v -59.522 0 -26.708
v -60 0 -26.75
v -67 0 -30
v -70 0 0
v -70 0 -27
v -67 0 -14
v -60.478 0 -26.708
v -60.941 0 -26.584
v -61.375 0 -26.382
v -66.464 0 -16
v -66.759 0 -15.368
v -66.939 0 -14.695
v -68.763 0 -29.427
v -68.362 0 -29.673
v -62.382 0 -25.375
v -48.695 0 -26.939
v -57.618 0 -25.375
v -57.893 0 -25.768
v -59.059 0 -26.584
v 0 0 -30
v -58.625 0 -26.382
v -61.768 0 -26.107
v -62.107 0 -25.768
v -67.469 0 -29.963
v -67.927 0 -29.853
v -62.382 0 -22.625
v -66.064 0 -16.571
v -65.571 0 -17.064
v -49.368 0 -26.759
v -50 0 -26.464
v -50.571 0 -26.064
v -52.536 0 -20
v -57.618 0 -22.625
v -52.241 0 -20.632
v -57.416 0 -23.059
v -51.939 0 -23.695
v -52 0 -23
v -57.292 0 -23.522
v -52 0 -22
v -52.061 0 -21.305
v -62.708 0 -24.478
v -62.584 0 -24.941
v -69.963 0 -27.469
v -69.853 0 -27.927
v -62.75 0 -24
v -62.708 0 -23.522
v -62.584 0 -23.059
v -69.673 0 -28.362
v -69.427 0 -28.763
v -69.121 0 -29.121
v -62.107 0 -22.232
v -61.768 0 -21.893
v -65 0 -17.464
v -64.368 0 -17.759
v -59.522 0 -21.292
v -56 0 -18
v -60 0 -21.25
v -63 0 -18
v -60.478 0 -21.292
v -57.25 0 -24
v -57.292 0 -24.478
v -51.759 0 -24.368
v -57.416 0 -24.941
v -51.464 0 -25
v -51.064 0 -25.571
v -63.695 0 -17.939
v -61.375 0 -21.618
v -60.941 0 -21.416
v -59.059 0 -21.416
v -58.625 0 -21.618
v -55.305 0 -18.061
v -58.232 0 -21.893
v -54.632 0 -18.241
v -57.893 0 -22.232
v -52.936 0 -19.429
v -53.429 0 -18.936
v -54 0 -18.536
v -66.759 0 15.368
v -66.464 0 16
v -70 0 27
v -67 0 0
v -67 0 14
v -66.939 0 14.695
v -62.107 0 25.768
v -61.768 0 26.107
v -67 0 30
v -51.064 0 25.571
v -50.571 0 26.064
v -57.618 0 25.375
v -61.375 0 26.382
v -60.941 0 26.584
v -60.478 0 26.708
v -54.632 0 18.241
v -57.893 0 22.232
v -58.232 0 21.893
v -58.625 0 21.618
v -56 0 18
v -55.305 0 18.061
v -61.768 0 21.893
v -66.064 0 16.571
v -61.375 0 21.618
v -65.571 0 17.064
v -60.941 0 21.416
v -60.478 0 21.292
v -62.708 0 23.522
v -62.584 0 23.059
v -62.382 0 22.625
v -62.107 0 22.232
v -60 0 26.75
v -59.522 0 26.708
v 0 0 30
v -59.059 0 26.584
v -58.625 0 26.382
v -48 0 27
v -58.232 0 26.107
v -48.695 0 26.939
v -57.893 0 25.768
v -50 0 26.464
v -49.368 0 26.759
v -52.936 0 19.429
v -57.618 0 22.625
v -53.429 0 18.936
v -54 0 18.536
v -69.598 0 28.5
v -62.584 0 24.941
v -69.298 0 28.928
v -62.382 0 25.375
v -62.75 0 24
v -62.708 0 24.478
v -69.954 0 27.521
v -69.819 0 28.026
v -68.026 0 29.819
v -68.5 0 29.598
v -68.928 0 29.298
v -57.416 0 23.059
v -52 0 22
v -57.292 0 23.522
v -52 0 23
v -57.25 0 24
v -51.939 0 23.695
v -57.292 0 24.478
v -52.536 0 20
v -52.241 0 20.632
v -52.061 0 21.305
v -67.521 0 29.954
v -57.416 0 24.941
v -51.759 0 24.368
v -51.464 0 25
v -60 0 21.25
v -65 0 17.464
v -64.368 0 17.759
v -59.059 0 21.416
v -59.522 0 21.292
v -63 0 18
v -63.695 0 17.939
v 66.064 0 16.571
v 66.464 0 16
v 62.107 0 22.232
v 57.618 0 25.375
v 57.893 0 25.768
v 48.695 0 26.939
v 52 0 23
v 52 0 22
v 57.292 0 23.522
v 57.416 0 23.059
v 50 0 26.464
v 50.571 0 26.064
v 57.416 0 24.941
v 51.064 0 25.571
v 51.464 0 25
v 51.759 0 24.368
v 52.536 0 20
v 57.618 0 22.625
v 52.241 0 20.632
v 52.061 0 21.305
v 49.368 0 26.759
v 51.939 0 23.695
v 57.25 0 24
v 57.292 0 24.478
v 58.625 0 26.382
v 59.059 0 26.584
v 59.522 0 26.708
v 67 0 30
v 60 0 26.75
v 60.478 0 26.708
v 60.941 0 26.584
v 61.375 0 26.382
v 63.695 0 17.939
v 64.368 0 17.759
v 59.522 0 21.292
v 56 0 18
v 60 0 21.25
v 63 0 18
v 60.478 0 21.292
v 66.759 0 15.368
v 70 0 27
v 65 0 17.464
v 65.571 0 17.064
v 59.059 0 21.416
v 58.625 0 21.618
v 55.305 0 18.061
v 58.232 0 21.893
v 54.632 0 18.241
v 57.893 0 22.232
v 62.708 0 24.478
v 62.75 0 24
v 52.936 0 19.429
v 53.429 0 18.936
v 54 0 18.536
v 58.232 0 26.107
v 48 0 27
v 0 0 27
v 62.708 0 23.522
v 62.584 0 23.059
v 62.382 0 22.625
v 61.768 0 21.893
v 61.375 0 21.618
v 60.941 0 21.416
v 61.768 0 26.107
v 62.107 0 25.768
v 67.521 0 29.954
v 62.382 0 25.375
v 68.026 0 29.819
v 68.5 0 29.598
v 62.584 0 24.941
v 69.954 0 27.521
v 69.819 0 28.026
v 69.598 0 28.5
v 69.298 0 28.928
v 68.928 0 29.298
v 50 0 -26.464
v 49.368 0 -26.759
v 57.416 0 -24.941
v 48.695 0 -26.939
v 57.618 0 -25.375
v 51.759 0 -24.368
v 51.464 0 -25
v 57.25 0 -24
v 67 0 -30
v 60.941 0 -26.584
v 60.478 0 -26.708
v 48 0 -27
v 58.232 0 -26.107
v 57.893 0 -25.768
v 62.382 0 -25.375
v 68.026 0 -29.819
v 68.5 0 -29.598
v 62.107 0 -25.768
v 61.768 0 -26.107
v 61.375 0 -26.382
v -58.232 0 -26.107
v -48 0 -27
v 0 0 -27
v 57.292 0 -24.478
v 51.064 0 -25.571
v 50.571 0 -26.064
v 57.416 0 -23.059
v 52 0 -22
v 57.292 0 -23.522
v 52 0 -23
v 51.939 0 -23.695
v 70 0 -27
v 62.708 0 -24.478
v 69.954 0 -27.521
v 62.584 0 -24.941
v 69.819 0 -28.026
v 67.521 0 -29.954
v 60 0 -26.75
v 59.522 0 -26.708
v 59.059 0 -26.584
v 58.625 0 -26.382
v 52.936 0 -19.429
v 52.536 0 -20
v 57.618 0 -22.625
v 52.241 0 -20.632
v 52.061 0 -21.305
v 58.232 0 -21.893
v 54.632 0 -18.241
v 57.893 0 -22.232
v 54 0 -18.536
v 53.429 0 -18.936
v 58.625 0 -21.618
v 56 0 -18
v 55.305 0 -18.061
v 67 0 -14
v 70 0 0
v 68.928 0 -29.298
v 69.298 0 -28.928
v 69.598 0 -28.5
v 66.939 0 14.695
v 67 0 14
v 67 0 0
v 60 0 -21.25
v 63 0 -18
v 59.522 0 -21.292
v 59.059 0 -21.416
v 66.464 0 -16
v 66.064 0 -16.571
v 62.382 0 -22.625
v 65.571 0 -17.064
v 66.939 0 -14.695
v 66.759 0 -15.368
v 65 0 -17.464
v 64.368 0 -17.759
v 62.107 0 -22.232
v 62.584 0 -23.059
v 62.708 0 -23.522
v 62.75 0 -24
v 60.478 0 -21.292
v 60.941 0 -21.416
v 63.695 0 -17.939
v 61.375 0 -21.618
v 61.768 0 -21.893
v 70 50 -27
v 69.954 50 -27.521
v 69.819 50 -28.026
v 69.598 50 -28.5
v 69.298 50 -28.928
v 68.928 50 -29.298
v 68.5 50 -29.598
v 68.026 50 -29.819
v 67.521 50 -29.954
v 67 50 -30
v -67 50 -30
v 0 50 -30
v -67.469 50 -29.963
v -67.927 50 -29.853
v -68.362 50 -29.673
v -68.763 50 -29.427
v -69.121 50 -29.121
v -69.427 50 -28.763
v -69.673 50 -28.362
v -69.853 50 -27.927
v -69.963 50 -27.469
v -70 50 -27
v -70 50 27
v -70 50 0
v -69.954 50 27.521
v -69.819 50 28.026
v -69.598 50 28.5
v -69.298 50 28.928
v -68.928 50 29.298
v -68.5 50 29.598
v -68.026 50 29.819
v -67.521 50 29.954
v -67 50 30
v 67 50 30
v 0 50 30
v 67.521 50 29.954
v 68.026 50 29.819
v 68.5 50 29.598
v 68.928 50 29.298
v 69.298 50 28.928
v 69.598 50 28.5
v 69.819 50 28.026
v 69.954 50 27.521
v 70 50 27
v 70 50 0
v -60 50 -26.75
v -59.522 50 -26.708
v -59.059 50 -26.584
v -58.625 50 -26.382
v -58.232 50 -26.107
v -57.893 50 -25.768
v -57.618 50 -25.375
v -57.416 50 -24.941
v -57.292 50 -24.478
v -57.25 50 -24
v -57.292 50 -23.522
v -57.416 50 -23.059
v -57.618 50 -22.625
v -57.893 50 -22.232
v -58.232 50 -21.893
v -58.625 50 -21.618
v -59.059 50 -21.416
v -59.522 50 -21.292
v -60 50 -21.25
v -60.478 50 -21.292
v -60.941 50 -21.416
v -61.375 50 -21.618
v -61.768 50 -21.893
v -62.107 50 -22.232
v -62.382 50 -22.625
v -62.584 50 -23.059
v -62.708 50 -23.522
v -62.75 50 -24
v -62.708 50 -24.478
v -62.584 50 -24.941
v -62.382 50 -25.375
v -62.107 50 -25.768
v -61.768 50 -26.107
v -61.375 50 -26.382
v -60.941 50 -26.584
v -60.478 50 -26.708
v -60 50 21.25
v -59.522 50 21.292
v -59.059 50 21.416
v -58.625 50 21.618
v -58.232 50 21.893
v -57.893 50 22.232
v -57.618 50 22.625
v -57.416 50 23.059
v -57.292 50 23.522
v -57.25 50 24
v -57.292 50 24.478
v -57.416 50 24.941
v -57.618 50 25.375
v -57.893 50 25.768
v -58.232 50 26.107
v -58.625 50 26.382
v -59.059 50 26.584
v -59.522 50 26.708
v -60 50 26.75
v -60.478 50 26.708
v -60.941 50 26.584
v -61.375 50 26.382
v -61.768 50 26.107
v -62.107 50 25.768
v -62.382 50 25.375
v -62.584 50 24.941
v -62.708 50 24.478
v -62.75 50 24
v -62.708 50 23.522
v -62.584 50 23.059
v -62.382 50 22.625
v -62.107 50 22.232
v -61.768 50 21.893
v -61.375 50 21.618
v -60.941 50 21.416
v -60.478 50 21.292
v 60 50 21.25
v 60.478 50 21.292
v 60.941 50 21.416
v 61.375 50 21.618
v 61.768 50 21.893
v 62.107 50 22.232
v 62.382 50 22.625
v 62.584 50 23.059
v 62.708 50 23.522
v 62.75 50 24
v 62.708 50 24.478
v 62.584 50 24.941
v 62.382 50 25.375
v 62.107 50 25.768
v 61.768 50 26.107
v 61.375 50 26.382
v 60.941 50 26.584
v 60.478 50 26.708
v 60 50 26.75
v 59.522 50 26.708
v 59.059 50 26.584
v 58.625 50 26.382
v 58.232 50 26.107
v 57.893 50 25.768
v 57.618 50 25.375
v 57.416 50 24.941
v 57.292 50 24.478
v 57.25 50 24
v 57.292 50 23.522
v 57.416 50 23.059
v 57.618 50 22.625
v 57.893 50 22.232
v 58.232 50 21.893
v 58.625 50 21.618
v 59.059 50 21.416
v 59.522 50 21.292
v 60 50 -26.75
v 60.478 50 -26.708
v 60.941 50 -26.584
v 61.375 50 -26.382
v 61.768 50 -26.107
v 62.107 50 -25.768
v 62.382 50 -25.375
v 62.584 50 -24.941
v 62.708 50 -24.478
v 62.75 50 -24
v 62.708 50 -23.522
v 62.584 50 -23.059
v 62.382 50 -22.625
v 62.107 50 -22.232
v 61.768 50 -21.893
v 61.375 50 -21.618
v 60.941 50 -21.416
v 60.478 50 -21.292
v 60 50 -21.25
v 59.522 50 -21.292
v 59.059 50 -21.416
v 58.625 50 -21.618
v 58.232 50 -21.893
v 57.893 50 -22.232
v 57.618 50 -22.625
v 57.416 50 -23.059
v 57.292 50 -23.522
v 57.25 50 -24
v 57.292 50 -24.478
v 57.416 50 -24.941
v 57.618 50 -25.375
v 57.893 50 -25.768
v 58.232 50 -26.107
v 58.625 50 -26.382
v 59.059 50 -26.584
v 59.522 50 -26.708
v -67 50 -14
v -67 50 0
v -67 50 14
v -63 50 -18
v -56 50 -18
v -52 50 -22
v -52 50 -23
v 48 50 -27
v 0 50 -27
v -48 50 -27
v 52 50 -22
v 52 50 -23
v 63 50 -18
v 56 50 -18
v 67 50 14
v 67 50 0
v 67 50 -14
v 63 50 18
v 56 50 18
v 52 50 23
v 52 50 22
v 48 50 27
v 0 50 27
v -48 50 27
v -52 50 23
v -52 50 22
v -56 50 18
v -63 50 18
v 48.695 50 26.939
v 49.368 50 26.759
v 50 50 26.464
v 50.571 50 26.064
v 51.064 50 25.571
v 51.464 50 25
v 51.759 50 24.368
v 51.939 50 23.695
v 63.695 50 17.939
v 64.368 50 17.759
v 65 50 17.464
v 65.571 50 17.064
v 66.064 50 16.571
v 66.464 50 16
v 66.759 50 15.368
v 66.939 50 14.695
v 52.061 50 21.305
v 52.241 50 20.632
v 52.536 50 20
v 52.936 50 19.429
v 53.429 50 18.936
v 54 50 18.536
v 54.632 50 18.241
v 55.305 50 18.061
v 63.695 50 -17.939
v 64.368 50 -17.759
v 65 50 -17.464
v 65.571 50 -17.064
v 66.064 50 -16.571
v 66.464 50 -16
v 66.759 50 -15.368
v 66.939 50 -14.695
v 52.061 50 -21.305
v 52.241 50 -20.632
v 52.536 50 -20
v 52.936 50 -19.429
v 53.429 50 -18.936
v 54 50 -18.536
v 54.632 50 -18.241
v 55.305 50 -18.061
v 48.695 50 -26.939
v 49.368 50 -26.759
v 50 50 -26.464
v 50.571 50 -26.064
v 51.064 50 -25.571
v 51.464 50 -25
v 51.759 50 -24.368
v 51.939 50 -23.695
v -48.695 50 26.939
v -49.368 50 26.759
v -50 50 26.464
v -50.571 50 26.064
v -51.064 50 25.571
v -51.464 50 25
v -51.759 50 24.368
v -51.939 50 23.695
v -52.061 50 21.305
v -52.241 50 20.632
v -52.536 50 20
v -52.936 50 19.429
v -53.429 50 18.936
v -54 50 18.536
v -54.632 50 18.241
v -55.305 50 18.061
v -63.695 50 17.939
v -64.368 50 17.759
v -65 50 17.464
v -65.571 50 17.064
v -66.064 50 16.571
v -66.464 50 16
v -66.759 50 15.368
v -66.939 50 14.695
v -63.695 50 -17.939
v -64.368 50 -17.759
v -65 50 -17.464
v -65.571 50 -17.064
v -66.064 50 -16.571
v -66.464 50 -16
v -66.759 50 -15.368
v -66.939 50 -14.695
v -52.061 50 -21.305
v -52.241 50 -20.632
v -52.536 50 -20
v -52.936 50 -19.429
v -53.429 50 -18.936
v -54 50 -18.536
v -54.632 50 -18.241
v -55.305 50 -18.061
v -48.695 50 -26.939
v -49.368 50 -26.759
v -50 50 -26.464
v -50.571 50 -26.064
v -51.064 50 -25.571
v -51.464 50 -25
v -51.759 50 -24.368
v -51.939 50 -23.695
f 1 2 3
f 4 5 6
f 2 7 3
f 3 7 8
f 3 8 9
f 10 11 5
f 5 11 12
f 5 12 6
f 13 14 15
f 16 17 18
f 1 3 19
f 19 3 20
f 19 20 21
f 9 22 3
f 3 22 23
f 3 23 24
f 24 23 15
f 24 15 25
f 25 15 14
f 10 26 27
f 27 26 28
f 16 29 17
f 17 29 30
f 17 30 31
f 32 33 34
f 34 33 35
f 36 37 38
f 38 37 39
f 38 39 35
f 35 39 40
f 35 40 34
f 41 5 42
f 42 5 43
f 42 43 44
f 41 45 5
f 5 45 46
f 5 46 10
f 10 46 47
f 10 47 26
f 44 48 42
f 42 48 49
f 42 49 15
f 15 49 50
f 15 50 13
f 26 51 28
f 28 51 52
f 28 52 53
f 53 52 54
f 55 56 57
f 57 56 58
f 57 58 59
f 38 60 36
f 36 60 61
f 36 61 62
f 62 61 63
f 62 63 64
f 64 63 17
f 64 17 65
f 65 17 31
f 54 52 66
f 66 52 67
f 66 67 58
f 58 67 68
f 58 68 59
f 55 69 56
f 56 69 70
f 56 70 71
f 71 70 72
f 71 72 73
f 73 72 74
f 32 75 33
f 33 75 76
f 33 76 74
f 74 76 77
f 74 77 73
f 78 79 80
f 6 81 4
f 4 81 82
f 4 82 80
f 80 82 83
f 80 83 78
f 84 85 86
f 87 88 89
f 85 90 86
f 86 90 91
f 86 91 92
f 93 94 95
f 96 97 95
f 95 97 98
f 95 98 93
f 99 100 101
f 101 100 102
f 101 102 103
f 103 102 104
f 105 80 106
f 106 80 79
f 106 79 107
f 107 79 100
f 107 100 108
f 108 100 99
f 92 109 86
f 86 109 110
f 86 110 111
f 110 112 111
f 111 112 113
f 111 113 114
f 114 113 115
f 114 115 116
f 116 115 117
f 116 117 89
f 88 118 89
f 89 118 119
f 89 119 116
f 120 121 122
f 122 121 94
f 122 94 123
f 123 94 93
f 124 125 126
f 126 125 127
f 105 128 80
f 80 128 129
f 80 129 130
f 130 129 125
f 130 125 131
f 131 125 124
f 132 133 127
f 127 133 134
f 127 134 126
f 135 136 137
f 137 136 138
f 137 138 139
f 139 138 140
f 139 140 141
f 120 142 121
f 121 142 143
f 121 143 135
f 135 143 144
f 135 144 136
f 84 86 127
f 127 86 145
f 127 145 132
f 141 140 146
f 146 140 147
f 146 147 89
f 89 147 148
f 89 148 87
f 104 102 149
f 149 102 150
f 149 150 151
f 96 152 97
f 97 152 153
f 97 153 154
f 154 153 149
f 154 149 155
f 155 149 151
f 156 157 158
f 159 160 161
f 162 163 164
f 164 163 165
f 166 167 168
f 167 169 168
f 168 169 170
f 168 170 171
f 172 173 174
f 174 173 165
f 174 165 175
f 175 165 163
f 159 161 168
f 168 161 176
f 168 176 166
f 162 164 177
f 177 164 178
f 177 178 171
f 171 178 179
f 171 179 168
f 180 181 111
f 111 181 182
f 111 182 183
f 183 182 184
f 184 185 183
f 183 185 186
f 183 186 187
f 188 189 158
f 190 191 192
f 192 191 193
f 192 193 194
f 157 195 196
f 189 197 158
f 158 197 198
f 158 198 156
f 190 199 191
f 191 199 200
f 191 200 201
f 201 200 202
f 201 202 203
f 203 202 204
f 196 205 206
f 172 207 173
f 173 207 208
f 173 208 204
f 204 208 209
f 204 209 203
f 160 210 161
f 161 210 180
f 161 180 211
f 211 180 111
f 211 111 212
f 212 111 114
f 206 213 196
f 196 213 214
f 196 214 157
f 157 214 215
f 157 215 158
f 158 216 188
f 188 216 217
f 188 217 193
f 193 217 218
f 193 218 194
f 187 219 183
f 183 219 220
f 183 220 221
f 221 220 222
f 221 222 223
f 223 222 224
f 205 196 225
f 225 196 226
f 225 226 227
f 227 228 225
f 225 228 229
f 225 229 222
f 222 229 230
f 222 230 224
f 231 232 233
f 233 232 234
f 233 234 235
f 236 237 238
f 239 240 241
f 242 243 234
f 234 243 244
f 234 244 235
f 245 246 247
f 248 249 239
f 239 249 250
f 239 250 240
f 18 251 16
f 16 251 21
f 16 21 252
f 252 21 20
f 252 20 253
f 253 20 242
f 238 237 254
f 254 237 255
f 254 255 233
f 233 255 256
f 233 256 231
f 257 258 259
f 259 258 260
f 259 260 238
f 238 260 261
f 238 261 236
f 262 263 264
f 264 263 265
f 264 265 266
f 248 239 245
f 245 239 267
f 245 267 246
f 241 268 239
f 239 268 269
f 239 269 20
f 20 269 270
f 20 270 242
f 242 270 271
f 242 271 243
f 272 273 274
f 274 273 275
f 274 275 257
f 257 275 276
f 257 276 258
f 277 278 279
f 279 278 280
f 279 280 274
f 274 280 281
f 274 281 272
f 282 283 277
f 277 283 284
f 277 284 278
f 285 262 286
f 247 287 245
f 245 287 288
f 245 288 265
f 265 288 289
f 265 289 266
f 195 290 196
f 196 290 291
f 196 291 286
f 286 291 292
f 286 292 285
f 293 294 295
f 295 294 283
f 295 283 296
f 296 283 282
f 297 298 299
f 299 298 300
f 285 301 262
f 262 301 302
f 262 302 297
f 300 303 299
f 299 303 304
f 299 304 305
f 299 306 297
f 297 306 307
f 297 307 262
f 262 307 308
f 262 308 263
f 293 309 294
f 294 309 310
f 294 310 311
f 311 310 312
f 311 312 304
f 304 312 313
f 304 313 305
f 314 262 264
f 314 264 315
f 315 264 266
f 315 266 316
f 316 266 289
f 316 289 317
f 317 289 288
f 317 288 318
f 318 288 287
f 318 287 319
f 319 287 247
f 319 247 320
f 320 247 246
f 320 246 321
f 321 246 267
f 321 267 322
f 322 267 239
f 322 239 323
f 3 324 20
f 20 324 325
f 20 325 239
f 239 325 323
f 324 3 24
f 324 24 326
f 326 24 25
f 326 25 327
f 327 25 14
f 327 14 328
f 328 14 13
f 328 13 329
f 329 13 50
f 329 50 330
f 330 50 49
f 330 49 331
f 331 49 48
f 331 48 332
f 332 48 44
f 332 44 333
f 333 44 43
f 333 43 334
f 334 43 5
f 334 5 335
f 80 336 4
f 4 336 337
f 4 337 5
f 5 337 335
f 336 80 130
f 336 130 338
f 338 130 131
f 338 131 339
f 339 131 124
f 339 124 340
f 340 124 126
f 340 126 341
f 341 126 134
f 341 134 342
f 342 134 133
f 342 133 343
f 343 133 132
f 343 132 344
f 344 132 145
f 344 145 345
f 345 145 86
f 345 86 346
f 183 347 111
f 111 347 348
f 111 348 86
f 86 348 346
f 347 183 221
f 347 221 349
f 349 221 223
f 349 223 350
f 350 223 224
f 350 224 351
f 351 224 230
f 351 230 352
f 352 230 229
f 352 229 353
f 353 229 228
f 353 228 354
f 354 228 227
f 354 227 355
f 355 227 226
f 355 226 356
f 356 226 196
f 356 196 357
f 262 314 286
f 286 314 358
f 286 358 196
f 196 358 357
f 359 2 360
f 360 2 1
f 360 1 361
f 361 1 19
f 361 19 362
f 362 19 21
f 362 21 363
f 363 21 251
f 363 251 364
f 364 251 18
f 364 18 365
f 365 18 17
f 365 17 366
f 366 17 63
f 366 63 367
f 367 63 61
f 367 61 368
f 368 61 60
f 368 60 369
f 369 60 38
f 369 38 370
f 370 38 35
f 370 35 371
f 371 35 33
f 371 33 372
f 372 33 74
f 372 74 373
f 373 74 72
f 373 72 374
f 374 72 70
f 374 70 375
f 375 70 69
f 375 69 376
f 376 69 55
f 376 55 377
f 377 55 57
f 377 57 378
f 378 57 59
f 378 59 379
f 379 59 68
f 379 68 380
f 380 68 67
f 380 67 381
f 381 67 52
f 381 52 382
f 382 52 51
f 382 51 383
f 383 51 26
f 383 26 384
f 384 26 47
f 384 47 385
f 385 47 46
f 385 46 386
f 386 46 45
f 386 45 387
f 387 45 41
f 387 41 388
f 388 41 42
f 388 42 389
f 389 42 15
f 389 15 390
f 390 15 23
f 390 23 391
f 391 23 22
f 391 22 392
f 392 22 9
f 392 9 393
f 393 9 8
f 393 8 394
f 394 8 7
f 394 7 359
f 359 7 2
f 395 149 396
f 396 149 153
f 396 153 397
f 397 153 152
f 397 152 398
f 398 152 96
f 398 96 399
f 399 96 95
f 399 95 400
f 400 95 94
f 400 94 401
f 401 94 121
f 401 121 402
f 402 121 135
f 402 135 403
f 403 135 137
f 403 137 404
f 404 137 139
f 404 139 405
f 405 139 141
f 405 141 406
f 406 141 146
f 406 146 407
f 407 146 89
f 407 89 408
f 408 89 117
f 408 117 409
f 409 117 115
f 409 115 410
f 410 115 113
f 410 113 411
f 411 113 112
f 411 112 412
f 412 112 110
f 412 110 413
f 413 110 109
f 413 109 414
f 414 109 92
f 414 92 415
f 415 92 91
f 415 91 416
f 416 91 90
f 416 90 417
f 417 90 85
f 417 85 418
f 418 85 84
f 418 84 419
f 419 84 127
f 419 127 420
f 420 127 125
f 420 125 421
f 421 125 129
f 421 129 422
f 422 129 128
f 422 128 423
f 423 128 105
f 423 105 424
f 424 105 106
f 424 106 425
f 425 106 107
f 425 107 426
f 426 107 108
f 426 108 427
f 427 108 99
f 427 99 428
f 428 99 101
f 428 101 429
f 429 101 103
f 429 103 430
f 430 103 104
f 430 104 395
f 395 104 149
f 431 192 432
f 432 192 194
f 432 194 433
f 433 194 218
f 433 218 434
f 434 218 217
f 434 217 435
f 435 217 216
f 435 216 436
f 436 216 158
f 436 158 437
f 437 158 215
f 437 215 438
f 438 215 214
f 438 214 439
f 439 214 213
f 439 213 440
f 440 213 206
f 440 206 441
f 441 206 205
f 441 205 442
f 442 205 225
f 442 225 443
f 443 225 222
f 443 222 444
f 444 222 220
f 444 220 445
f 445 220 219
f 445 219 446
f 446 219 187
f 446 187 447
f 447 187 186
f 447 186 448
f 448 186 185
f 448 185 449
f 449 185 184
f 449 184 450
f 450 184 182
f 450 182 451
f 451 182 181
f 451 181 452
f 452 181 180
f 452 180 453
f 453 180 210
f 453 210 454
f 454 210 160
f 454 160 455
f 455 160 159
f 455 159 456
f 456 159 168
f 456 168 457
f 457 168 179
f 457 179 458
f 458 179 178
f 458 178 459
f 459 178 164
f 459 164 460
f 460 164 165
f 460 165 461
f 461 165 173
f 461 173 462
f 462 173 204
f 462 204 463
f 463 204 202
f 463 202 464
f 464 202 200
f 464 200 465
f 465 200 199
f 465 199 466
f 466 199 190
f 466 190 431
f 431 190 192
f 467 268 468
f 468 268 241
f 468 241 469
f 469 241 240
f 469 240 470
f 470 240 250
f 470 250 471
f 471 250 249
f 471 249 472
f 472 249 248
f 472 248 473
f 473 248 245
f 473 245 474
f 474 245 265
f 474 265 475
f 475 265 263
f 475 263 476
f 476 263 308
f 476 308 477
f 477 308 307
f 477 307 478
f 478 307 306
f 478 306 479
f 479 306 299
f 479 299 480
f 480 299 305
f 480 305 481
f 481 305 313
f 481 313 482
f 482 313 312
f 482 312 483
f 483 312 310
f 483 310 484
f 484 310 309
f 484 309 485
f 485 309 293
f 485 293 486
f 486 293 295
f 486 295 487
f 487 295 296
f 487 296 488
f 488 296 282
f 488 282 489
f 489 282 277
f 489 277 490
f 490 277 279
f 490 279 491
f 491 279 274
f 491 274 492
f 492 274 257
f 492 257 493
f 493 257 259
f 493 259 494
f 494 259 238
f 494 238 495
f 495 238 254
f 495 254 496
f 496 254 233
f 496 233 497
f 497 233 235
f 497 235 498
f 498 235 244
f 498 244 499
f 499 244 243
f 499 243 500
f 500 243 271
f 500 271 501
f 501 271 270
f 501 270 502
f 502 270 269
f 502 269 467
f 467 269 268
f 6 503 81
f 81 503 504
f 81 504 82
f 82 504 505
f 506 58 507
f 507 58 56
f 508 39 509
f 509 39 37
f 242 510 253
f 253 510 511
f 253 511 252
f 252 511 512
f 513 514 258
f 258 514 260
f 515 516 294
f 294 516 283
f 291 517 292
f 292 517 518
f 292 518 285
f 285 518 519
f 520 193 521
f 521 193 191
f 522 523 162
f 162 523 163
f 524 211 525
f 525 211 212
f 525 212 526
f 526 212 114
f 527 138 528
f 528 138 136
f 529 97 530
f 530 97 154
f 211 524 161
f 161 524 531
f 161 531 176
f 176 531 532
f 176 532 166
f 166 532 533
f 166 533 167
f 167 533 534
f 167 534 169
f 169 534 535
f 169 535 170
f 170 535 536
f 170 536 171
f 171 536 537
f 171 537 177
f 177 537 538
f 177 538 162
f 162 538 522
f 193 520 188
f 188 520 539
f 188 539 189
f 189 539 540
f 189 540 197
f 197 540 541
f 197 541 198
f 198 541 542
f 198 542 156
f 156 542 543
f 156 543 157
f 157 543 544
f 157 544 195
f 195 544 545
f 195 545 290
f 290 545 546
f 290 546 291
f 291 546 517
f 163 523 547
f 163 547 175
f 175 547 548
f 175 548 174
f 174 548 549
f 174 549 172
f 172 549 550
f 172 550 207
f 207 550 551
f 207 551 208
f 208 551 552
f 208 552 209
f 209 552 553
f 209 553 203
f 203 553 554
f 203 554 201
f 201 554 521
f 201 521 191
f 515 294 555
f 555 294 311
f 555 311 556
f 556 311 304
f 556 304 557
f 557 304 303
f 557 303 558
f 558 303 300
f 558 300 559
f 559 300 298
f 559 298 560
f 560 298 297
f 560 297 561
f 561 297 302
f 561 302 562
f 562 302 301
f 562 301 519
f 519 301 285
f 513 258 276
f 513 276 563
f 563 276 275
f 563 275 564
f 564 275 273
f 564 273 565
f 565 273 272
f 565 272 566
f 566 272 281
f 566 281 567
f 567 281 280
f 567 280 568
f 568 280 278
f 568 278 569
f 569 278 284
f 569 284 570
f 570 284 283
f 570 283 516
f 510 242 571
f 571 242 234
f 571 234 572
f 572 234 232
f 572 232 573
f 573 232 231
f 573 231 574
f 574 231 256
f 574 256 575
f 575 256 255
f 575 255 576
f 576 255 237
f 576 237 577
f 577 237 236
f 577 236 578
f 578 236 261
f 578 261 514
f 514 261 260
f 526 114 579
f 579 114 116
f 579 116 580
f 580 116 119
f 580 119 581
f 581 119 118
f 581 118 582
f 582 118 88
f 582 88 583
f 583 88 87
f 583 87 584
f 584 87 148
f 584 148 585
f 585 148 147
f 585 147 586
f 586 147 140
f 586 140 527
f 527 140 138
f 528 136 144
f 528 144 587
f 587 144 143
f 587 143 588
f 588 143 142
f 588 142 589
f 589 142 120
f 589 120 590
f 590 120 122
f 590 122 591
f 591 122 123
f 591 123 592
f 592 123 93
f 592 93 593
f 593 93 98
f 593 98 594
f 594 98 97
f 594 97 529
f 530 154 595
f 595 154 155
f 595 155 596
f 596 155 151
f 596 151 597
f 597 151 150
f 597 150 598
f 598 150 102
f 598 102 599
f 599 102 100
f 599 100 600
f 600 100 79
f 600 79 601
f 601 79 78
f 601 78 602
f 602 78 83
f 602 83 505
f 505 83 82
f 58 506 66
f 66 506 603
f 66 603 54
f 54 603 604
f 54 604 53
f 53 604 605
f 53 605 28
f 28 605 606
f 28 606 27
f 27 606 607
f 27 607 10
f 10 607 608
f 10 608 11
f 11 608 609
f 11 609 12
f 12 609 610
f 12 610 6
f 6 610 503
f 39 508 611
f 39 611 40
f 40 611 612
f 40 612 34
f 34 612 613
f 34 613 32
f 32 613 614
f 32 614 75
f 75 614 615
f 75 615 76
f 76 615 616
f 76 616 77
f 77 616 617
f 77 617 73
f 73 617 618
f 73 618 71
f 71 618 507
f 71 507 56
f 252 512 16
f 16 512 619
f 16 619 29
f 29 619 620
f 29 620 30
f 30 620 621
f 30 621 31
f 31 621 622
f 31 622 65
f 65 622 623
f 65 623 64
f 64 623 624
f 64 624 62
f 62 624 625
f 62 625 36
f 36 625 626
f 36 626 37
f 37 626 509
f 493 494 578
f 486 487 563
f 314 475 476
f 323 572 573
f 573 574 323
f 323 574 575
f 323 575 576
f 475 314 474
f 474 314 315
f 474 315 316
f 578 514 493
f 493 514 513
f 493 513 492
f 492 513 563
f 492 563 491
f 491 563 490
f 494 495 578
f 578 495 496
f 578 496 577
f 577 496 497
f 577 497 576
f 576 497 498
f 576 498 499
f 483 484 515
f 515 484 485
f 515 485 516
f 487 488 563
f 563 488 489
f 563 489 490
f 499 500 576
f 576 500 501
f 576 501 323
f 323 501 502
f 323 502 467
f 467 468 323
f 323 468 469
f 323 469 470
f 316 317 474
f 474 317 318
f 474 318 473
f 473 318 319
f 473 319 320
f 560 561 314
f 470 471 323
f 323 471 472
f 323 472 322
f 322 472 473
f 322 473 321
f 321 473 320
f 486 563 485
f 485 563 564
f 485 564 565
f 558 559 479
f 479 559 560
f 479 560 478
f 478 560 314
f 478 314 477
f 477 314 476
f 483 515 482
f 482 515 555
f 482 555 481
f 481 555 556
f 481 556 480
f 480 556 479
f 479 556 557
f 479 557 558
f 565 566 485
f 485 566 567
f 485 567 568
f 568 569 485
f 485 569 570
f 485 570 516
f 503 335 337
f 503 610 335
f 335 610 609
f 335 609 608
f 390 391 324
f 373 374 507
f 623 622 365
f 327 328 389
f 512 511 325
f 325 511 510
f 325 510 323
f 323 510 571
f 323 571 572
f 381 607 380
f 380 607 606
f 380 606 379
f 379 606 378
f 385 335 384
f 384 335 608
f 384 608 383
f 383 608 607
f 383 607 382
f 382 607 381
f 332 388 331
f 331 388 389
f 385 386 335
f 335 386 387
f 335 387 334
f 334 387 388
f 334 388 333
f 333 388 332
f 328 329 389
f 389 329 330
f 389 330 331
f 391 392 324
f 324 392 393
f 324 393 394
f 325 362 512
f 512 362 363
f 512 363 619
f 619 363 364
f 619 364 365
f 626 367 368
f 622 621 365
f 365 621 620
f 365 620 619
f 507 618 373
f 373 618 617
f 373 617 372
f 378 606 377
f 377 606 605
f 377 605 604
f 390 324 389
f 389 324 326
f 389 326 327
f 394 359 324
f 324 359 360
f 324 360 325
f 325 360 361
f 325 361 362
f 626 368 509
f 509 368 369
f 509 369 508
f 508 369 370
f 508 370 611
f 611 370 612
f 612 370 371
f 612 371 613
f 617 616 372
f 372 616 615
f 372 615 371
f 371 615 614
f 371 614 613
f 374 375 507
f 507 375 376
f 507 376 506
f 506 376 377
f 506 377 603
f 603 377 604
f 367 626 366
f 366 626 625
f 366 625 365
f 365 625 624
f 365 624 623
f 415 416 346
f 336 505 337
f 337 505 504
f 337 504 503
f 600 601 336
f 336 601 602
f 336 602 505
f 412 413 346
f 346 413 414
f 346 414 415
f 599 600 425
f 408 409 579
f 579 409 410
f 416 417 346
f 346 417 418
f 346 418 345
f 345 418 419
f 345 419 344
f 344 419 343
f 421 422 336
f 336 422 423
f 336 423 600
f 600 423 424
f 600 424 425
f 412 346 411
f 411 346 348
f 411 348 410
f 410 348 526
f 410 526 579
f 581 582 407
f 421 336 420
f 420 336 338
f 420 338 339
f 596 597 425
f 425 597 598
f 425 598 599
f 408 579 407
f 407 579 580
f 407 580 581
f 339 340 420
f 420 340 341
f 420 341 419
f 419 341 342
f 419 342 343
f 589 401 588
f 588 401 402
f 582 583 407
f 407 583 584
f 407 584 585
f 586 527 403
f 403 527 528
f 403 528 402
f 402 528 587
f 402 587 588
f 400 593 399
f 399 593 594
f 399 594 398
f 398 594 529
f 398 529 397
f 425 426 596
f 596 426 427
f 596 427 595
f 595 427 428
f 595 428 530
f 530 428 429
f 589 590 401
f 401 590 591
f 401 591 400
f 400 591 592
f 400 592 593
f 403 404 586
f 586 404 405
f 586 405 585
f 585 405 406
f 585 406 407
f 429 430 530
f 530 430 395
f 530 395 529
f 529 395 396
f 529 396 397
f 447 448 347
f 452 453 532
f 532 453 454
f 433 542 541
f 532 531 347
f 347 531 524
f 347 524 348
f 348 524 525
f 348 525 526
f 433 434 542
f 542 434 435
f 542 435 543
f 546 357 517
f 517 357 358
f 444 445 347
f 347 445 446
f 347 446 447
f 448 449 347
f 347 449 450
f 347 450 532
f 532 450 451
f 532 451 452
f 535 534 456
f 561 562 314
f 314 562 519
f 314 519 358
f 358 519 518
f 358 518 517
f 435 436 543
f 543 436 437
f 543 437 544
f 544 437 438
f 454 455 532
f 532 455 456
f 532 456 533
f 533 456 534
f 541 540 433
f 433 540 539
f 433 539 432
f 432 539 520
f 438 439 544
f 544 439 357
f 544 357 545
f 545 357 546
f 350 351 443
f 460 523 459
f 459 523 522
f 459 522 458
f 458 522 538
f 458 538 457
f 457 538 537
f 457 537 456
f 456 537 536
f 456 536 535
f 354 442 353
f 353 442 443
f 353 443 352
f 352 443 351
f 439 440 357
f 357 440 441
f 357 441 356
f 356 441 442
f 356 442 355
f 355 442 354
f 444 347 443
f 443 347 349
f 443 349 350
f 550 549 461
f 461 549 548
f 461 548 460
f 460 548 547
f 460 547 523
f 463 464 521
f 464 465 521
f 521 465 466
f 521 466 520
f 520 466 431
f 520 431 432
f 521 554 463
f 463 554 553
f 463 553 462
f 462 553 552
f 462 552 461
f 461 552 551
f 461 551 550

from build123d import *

# Parameters (mm, degrees)
SKETCH1_R           = 2.75
SKETCH1_W           = 130
SKETCH1_H           = 38
BOSS_EXTRUDE1_DEPTH = 10
SKETCH1_2_W         = 130
SKETCH1_2_H         = 38
BOSS_EXTRUDE2_DEPTH = 10
SKETCH14_W          = 15
SKETCH14_H          = 36
SKETCH14_W_2        = 104
SKETCH14_H_2        = 9
CUT_EXTRUDE2_DEPTH  = 77.811457479
FILLET2_R           = 4
SKETCH15_R          = 2.75
BOSS_EXTRUDE3_DEPTH = 40


with BuildPart() as part:
    # Sketch1 → Boss-Extrude1 (new body)
    with BuildSketch(Plane(origin=(0, 0, 0), x_dir=(1, 0, 0), z_dir=(0, 1, 0))):
        with BuildLine():
            Line((67, 30), (-67, 30))
            ThreePointArc((-67, 30), (-69.121320344, 29.121320344), (-70, 27))
            Line((-70, 27), (-70, -27))
            ThreePointArc((-70, -27), (-69.121320344, -29.121320344), (-67, -30))
            Line((-67, -30), (67, -30))
            ThreePointArc((67, -30), (69.121320344, -29.121320344), (70, -27))
            Line((70, -27), (70, 27))
            ThreePointArc((70, 27), (69.121320344, 29.121320344), (67, 30))
        make_face()
        with Locations(Location((-60, 24, 0), (0, 0, 270))):
            Circle(SKETCH1_R, mode=Mode.SUBTRACT)
        with Locations(Location((-60, -24, 0), (0, 0, 270))):
            Circle(SKETCH1_R, mode=Mode.SUBTRACT)
        with Locations(Location((60, -24, 0), (0, 0, 270))):
            Circle(SKETCH1_R, mode=Mode.SUBTRACT)
        with Locations(Location((60, 24, 0), (0, 0, 270))):
            Circle(SKETCH1_R, mode=Mode.SUBTRACT)
        Rectangle(SKETCH1_W, SKETCH1_H, mode=Mode.SUBTRACT)
    extrude(amount=BOSS_EXTRUDE1_DEPTH)

    # Sketch1<2> → Boss-Extrude2 (add)
    with BuildSketch(Plane(origin=(0, 0, 0), x_dir=(1, 0, 0), z_dir=(0, 1, 0))):
        Rectangle(SKETCH1_2_W, SKETCH1_2_H)
    extrude(amount=BOSS_EXTRUDE2_DEPTH)

    # Sketch14 → Cut-Extrude2 (cut, through all)
    with BuildSketch(Plane(origin=(0, 10, 0), x_dir=(1, 0, 0), z_dir=(0, 1, 0))):
        with Locations((-59.5, 0)):
            Rectangle(SKETCH14_W, SKETCH14_H)
        Rectangle(SKETCH14_W_2, SKETCH14_H)
        with Locations((0, 22.5)):
            Rectangle(SKETCH14_W_2, SKETCH14_H_2)
        with Locations((59.5, 0)):
            Rectangle(SKETCH14_W, SKETCH14_H)
        with Locations((0, -22.5)):
            Rectangle(SKETCH14_W_2, SKETCH14_H_2)
    extrude(amount=-CUT_EXTRUDE2_DEPTH, mode=Mode.SUBTRACT)

    # Fillet2
    fillet2_edges = [part.edges().sort_by_distance(p)[0] for p in [
        (-67, 5, 18),
        (-67, 5, -18),
        (-52, 5, -18),
        (-52, 5, -27),
        (52, 5, -27),
        (52, 5, -18),
        (67, 5, -18),
        (67, 5, 18),
        (52, 5, 18),
        (52, 5, 27),
        (-52, 5, 27),
        (-52, 5, 18),
    ]]
    fillet(fillet2_edges, radius=FILLET2_R)

    # Sketch15 → Boss-Extrude3 (add)
    with BuildSketch(Plane(origin=(0, 10, 0), x_dir=(1, 0, 0), z_dir=(0, 1, 0))):
        with BuildLine():
            Line((67, 30), (-67, 30))
            ThreePointArc((-67, 30), (-69.121320344, 29.121320344), (-70, 27))
            Line((-70, 27), (-70, -27))
            ThreePointArc((-70, -27), (-69.121320344, -29.121320344), (-67, -30))
            Line((-67, -30), (67, -30))
            ThreePointArc((67, -30), (69.121320344, -29.121320344), (70, -27))
            Line((70, -27), (70, 27))
            ThreePointArc((70, 27), (69.121320344, 29.121320344), (67, 30))
        make_face()
        with Locations(Location((-60, 24, 0), (0, 0, 270))):
            Circle(SKETCH15_R, mode=Mode.SUBTRACT)
        with Locations(Location((-60, -24, 0), (0, 0, 270))):
            Circle(SKETCH15_R, mode=Mode.SUBTRACT)
        with Locations(Location((60, -24, 0), (0, 0, 270))):
            Circle(SKETCH15_R, mode=Mode.SUBTRACT)
        with Locations(Location((60, 24, 0), (0, 0, 270))):
            Circle(SKETCH15_R, mode=Mode.SUBTRACT)
        with BuildLine():
            Line((56, -18), (63, -18))
            ThreePointArc((63, -18), (65.828427125, -16.828427125), (67, -14))
            Line((67, -14), (67, 14))
            ThreePointArc((67, 14), (65.828427125, 16.828427125), (63, 18))
            Line((63, 18), (56, 18))
            ThreePointArc((56, 18), (53.171572875, 19.171572875), (52, 22))
            Line((52, 22), (52, 23))
            ThreePointArc((52, 23), (50.828427125, 25.828427125), (48, 27))
            Line((48, 27), (-48, 27))
            ThreePointArc((-48, 27), (-50.828427125, 25.828427125), (-52, 23))
            Line((-52, 23), (-52, 22))
            ThreePointArc((-52, 22), (-53.171572875, 19.171572875), (-56, 18))
            Line((-56, 18), (-63, 18))
            ThreePointArc((-63, 18), (-65.828427125, 16.828427125), (-67, 14))
            Line((-67, 14), (-67, -14))
            ThreePointArc((-67, -14), (-65.828427125, -16.828427125), (-63, -18))
            Line((-63, -18), (-56, -18))
            ThreePointArc((-56, -18), (-53.171572875, -19.171572875), (-52, -22))
            Line((-52, -22), (-52, -23))
            ThreePointArc((-52, -23), (-50.828427125, -25.828427125), (-48, -27))
            Line((-48, -27), (48, -27))
            ThreePointArc((48, -27), (50.828427125, -25.828427125), (52, -23))
            Line((52, -23), (52, -22))
            ThreePointArc((52, -22), (53.171572875, -19.171572875), (56, -18))
        make_face(mode=Mode.SUBTRACT)
    extrude(amount=BOSS_EXTRUDE3_DEPTH)


solid = part.part
